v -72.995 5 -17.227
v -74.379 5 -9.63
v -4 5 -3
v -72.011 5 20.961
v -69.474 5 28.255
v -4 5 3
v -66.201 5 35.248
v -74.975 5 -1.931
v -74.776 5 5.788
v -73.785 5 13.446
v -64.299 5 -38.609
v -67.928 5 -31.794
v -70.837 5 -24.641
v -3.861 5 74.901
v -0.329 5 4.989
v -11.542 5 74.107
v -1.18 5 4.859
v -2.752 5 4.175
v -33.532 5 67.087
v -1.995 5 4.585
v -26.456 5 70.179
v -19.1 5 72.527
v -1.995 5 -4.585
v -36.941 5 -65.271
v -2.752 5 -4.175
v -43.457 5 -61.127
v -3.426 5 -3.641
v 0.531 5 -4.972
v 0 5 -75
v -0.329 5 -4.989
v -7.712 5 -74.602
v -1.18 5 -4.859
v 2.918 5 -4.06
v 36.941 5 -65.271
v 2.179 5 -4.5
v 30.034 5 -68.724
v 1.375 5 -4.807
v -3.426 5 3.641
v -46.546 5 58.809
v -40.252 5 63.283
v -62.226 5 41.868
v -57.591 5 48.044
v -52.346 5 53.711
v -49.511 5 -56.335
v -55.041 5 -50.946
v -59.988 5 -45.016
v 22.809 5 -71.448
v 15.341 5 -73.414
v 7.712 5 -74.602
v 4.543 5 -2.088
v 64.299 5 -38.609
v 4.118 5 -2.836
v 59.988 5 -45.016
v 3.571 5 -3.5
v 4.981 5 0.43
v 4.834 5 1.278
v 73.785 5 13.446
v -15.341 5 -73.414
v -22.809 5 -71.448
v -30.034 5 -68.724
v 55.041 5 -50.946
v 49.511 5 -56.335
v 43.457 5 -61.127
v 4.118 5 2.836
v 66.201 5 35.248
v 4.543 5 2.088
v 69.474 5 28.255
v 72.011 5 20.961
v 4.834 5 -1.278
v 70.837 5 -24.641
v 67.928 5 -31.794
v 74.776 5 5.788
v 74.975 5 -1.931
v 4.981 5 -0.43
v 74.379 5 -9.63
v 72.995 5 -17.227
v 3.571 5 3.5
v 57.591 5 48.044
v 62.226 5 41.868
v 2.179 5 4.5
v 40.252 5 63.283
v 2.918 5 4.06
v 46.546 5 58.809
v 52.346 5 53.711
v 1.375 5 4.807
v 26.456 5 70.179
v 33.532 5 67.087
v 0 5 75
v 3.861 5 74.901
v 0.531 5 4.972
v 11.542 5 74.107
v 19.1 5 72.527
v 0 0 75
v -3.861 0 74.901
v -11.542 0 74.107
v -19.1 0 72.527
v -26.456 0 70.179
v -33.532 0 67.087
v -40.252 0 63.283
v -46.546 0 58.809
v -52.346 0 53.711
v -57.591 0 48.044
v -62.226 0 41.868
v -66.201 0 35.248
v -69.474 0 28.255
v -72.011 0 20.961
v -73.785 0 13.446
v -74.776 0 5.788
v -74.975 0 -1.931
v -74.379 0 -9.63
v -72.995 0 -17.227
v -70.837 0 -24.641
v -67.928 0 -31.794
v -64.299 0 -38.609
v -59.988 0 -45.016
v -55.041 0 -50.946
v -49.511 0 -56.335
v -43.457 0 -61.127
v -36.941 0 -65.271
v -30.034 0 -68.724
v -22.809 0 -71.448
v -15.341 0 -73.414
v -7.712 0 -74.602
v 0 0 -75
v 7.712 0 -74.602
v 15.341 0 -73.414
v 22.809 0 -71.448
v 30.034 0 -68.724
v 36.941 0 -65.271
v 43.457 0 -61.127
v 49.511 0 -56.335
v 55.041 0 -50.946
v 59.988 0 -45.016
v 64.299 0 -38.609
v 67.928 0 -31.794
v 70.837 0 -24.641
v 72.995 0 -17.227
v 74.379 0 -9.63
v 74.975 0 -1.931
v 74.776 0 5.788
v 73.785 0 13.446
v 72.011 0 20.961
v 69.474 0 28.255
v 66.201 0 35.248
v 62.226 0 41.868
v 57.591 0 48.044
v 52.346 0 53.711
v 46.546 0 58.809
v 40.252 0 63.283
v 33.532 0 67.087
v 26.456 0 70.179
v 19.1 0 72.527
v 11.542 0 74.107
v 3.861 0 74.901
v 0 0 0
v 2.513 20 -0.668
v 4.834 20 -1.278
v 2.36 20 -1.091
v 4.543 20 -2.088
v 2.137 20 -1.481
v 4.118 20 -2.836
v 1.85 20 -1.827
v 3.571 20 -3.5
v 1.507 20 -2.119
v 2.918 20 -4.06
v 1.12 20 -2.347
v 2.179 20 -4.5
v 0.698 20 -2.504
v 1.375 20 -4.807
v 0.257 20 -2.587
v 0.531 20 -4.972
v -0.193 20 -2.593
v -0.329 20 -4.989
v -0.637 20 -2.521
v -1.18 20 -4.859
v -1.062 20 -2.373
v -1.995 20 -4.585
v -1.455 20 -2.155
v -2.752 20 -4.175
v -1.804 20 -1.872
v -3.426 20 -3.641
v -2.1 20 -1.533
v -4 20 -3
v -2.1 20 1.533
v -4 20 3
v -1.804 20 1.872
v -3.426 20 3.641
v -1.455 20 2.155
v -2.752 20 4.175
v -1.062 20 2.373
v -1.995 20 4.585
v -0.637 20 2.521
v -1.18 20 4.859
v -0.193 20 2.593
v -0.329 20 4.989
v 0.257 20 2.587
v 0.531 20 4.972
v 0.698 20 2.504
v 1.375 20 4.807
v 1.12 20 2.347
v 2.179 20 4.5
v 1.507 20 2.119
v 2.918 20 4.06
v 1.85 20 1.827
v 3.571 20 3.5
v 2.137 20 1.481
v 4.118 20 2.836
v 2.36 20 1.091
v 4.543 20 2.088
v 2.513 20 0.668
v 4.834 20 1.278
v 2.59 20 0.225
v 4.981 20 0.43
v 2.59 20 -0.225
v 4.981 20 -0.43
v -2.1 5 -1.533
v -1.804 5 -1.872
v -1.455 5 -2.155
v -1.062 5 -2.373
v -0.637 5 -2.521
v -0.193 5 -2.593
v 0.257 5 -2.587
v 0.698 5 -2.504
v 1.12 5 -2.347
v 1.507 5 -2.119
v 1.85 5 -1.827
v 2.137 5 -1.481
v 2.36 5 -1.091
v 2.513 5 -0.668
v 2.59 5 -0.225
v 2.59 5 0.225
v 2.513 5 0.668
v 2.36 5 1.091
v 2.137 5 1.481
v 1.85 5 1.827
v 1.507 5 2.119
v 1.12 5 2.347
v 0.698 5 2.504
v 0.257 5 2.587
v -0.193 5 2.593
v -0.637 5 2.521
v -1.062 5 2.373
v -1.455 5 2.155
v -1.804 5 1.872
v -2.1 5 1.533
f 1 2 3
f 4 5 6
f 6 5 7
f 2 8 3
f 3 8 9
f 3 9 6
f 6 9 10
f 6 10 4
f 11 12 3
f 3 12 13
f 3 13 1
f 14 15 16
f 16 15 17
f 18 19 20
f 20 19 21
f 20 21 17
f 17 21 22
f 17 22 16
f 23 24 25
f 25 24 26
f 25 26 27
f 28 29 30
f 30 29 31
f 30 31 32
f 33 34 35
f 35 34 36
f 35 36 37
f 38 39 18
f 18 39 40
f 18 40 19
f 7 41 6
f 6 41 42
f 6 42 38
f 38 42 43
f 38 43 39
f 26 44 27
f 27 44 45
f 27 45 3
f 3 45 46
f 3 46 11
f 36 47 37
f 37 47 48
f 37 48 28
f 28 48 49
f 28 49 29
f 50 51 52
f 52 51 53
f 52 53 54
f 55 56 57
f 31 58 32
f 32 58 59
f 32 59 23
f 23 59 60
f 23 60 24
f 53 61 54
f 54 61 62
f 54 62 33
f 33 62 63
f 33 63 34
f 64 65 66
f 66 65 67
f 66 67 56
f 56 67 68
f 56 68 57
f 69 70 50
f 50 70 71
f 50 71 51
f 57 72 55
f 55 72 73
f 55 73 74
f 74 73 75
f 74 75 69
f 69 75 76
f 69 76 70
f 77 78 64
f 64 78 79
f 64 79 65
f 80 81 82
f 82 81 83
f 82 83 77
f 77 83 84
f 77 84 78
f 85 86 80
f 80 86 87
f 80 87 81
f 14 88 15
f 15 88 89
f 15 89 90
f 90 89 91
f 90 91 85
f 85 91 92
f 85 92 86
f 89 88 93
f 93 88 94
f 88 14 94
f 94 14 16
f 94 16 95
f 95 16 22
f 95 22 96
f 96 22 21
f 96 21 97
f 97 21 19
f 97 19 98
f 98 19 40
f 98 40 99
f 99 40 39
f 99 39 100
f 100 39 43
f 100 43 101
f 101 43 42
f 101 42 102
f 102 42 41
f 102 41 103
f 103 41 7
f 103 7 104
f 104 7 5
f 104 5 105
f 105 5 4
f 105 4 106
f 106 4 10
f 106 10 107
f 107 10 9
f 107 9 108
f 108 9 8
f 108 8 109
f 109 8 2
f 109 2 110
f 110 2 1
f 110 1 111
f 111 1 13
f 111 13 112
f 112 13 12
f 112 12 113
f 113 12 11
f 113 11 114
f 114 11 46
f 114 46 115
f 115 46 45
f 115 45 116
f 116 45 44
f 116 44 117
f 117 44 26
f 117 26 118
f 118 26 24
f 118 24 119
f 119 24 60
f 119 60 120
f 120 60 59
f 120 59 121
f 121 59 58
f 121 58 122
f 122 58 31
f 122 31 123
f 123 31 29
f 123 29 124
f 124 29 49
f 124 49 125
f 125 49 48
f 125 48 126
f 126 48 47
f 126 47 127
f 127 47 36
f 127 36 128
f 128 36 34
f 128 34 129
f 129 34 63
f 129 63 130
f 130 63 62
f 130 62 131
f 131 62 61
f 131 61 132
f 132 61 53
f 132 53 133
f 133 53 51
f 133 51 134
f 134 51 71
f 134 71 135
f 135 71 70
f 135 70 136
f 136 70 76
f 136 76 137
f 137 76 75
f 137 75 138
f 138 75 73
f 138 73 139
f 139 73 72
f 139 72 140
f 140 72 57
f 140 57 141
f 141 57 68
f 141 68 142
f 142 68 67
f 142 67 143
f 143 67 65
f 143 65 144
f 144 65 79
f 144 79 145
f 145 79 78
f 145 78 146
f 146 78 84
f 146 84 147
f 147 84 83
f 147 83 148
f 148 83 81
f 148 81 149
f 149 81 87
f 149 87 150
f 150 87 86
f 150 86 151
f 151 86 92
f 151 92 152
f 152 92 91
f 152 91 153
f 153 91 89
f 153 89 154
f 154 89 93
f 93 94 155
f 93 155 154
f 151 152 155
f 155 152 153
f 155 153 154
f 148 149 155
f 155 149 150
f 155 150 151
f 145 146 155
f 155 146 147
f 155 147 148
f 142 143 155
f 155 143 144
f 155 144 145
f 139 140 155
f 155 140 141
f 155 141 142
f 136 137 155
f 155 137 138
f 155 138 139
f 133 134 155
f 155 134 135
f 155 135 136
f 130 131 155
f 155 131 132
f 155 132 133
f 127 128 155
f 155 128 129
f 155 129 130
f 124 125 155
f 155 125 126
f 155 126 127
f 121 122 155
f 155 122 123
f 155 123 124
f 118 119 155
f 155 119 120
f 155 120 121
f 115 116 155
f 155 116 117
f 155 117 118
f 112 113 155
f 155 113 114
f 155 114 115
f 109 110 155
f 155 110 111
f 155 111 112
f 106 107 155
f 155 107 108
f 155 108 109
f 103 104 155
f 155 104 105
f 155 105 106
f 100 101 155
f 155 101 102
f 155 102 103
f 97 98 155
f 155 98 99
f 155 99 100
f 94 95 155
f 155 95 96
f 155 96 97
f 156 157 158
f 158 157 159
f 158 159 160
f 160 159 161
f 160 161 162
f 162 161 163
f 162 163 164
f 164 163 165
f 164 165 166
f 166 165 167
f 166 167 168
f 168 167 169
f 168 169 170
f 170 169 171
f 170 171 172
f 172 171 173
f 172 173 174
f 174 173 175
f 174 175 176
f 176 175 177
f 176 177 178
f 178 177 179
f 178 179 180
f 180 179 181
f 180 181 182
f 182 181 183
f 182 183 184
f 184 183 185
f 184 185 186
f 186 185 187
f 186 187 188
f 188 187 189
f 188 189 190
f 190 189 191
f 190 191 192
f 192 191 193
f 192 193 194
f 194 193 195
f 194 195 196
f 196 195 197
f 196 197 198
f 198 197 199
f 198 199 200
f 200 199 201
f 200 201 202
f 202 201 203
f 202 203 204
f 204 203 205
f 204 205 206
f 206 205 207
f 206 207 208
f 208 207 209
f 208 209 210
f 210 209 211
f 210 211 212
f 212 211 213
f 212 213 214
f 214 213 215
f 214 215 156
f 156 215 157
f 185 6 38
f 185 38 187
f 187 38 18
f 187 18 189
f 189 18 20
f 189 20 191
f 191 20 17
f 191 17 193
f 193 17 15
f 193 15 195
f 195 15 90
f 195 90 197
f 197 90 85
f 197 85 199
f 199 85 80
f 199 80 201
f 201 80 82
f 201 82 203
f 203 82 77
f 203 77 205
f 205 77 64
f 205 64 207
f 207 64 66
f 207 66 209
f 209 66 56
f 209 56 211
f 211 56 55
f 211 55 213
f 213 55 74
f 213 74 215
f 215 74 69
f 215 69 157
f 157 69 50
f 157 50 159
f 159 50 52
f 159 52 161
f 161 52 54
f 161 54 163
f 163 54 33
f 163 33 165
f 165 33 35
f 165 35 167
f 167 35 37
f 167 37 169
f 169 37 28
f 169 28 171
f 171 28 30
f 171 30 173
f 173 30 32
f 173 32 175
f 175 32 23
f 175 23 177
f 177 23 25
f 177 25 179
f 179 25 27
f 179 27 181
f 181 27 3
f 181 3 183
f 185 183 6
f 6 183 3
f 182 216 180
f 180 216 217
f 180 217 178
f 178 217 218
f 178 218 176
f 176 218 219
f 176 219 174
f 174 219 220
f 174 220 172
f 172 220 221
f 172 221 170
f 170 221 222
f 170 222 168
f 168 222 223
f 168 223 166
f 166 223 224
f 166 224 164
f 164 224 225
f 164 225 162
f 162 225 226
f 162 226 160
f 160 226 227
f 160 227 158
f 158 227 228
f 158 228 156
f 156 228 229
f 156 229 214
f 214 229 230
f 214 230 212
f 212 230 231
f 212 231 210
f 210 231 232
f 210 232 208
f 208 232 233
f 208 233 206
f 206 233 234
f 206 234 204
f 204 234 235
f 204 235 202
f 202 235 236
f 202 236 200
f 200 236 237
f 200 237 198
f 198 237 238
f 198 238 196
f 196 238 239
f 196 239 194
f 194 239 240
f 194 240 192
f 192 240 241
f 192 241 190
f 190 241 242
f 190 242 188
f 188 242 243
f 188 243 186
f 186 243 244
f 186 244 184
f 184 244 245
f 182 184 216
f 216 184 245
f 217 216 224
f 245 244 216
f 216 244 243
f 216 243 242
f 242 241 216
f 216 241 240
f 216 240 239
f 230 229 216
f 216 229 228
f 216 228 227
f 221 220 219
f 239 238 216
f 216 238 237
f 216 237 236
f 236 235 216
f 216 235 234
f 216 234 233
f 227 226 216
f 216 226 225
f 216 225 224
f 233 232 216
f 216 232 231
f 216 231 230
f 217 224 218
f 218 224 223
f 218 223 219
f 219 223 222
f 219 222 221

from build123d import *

# Parameters (mm, degrees)
SKETCH1_R           = 75
BOSS_EXTRUDE1_DEPTH = 5
BOSS_EXTRUDE2_DEPTH = 15


with BuildPart() as part:
    # Sketch1 → Boss-Extrude1 (new body)
    with BuildSketch(Plane(origin=(0, 0, 0), x_dir=(1, 0, 0), z_dir=(0, 1, 0))):
        Circle(SKETCH1_R)
    extrude(amount=BOSS_EXTRUDE1_DEPTH)

    # Sketch3 → Boss-Extrude2 (add)
    with BuildSketch(Plane(origin=(0, 5, 0), x_dir=(1, 0, 0), z_dir=(0, 1, 0))):
        with BuildLine():
            Line((-4, 3), (-4, -3))
            ThreePointArc((-4, -3), (5, 0), (-4, 3))
        make_face()
        with BuildLine():
            Line((-2.1, 1.532970972), (-2.1, -1.532970972))
            ThreePointArc((-2.1, -1.532970972), (2.6, 0), (-2.1, 1.532970972))
        make_face(mode=Mode.SUBTRACT)
    extrude(amount=BOSS_EXTRUDE2_DEPTH)


solid = part.part
